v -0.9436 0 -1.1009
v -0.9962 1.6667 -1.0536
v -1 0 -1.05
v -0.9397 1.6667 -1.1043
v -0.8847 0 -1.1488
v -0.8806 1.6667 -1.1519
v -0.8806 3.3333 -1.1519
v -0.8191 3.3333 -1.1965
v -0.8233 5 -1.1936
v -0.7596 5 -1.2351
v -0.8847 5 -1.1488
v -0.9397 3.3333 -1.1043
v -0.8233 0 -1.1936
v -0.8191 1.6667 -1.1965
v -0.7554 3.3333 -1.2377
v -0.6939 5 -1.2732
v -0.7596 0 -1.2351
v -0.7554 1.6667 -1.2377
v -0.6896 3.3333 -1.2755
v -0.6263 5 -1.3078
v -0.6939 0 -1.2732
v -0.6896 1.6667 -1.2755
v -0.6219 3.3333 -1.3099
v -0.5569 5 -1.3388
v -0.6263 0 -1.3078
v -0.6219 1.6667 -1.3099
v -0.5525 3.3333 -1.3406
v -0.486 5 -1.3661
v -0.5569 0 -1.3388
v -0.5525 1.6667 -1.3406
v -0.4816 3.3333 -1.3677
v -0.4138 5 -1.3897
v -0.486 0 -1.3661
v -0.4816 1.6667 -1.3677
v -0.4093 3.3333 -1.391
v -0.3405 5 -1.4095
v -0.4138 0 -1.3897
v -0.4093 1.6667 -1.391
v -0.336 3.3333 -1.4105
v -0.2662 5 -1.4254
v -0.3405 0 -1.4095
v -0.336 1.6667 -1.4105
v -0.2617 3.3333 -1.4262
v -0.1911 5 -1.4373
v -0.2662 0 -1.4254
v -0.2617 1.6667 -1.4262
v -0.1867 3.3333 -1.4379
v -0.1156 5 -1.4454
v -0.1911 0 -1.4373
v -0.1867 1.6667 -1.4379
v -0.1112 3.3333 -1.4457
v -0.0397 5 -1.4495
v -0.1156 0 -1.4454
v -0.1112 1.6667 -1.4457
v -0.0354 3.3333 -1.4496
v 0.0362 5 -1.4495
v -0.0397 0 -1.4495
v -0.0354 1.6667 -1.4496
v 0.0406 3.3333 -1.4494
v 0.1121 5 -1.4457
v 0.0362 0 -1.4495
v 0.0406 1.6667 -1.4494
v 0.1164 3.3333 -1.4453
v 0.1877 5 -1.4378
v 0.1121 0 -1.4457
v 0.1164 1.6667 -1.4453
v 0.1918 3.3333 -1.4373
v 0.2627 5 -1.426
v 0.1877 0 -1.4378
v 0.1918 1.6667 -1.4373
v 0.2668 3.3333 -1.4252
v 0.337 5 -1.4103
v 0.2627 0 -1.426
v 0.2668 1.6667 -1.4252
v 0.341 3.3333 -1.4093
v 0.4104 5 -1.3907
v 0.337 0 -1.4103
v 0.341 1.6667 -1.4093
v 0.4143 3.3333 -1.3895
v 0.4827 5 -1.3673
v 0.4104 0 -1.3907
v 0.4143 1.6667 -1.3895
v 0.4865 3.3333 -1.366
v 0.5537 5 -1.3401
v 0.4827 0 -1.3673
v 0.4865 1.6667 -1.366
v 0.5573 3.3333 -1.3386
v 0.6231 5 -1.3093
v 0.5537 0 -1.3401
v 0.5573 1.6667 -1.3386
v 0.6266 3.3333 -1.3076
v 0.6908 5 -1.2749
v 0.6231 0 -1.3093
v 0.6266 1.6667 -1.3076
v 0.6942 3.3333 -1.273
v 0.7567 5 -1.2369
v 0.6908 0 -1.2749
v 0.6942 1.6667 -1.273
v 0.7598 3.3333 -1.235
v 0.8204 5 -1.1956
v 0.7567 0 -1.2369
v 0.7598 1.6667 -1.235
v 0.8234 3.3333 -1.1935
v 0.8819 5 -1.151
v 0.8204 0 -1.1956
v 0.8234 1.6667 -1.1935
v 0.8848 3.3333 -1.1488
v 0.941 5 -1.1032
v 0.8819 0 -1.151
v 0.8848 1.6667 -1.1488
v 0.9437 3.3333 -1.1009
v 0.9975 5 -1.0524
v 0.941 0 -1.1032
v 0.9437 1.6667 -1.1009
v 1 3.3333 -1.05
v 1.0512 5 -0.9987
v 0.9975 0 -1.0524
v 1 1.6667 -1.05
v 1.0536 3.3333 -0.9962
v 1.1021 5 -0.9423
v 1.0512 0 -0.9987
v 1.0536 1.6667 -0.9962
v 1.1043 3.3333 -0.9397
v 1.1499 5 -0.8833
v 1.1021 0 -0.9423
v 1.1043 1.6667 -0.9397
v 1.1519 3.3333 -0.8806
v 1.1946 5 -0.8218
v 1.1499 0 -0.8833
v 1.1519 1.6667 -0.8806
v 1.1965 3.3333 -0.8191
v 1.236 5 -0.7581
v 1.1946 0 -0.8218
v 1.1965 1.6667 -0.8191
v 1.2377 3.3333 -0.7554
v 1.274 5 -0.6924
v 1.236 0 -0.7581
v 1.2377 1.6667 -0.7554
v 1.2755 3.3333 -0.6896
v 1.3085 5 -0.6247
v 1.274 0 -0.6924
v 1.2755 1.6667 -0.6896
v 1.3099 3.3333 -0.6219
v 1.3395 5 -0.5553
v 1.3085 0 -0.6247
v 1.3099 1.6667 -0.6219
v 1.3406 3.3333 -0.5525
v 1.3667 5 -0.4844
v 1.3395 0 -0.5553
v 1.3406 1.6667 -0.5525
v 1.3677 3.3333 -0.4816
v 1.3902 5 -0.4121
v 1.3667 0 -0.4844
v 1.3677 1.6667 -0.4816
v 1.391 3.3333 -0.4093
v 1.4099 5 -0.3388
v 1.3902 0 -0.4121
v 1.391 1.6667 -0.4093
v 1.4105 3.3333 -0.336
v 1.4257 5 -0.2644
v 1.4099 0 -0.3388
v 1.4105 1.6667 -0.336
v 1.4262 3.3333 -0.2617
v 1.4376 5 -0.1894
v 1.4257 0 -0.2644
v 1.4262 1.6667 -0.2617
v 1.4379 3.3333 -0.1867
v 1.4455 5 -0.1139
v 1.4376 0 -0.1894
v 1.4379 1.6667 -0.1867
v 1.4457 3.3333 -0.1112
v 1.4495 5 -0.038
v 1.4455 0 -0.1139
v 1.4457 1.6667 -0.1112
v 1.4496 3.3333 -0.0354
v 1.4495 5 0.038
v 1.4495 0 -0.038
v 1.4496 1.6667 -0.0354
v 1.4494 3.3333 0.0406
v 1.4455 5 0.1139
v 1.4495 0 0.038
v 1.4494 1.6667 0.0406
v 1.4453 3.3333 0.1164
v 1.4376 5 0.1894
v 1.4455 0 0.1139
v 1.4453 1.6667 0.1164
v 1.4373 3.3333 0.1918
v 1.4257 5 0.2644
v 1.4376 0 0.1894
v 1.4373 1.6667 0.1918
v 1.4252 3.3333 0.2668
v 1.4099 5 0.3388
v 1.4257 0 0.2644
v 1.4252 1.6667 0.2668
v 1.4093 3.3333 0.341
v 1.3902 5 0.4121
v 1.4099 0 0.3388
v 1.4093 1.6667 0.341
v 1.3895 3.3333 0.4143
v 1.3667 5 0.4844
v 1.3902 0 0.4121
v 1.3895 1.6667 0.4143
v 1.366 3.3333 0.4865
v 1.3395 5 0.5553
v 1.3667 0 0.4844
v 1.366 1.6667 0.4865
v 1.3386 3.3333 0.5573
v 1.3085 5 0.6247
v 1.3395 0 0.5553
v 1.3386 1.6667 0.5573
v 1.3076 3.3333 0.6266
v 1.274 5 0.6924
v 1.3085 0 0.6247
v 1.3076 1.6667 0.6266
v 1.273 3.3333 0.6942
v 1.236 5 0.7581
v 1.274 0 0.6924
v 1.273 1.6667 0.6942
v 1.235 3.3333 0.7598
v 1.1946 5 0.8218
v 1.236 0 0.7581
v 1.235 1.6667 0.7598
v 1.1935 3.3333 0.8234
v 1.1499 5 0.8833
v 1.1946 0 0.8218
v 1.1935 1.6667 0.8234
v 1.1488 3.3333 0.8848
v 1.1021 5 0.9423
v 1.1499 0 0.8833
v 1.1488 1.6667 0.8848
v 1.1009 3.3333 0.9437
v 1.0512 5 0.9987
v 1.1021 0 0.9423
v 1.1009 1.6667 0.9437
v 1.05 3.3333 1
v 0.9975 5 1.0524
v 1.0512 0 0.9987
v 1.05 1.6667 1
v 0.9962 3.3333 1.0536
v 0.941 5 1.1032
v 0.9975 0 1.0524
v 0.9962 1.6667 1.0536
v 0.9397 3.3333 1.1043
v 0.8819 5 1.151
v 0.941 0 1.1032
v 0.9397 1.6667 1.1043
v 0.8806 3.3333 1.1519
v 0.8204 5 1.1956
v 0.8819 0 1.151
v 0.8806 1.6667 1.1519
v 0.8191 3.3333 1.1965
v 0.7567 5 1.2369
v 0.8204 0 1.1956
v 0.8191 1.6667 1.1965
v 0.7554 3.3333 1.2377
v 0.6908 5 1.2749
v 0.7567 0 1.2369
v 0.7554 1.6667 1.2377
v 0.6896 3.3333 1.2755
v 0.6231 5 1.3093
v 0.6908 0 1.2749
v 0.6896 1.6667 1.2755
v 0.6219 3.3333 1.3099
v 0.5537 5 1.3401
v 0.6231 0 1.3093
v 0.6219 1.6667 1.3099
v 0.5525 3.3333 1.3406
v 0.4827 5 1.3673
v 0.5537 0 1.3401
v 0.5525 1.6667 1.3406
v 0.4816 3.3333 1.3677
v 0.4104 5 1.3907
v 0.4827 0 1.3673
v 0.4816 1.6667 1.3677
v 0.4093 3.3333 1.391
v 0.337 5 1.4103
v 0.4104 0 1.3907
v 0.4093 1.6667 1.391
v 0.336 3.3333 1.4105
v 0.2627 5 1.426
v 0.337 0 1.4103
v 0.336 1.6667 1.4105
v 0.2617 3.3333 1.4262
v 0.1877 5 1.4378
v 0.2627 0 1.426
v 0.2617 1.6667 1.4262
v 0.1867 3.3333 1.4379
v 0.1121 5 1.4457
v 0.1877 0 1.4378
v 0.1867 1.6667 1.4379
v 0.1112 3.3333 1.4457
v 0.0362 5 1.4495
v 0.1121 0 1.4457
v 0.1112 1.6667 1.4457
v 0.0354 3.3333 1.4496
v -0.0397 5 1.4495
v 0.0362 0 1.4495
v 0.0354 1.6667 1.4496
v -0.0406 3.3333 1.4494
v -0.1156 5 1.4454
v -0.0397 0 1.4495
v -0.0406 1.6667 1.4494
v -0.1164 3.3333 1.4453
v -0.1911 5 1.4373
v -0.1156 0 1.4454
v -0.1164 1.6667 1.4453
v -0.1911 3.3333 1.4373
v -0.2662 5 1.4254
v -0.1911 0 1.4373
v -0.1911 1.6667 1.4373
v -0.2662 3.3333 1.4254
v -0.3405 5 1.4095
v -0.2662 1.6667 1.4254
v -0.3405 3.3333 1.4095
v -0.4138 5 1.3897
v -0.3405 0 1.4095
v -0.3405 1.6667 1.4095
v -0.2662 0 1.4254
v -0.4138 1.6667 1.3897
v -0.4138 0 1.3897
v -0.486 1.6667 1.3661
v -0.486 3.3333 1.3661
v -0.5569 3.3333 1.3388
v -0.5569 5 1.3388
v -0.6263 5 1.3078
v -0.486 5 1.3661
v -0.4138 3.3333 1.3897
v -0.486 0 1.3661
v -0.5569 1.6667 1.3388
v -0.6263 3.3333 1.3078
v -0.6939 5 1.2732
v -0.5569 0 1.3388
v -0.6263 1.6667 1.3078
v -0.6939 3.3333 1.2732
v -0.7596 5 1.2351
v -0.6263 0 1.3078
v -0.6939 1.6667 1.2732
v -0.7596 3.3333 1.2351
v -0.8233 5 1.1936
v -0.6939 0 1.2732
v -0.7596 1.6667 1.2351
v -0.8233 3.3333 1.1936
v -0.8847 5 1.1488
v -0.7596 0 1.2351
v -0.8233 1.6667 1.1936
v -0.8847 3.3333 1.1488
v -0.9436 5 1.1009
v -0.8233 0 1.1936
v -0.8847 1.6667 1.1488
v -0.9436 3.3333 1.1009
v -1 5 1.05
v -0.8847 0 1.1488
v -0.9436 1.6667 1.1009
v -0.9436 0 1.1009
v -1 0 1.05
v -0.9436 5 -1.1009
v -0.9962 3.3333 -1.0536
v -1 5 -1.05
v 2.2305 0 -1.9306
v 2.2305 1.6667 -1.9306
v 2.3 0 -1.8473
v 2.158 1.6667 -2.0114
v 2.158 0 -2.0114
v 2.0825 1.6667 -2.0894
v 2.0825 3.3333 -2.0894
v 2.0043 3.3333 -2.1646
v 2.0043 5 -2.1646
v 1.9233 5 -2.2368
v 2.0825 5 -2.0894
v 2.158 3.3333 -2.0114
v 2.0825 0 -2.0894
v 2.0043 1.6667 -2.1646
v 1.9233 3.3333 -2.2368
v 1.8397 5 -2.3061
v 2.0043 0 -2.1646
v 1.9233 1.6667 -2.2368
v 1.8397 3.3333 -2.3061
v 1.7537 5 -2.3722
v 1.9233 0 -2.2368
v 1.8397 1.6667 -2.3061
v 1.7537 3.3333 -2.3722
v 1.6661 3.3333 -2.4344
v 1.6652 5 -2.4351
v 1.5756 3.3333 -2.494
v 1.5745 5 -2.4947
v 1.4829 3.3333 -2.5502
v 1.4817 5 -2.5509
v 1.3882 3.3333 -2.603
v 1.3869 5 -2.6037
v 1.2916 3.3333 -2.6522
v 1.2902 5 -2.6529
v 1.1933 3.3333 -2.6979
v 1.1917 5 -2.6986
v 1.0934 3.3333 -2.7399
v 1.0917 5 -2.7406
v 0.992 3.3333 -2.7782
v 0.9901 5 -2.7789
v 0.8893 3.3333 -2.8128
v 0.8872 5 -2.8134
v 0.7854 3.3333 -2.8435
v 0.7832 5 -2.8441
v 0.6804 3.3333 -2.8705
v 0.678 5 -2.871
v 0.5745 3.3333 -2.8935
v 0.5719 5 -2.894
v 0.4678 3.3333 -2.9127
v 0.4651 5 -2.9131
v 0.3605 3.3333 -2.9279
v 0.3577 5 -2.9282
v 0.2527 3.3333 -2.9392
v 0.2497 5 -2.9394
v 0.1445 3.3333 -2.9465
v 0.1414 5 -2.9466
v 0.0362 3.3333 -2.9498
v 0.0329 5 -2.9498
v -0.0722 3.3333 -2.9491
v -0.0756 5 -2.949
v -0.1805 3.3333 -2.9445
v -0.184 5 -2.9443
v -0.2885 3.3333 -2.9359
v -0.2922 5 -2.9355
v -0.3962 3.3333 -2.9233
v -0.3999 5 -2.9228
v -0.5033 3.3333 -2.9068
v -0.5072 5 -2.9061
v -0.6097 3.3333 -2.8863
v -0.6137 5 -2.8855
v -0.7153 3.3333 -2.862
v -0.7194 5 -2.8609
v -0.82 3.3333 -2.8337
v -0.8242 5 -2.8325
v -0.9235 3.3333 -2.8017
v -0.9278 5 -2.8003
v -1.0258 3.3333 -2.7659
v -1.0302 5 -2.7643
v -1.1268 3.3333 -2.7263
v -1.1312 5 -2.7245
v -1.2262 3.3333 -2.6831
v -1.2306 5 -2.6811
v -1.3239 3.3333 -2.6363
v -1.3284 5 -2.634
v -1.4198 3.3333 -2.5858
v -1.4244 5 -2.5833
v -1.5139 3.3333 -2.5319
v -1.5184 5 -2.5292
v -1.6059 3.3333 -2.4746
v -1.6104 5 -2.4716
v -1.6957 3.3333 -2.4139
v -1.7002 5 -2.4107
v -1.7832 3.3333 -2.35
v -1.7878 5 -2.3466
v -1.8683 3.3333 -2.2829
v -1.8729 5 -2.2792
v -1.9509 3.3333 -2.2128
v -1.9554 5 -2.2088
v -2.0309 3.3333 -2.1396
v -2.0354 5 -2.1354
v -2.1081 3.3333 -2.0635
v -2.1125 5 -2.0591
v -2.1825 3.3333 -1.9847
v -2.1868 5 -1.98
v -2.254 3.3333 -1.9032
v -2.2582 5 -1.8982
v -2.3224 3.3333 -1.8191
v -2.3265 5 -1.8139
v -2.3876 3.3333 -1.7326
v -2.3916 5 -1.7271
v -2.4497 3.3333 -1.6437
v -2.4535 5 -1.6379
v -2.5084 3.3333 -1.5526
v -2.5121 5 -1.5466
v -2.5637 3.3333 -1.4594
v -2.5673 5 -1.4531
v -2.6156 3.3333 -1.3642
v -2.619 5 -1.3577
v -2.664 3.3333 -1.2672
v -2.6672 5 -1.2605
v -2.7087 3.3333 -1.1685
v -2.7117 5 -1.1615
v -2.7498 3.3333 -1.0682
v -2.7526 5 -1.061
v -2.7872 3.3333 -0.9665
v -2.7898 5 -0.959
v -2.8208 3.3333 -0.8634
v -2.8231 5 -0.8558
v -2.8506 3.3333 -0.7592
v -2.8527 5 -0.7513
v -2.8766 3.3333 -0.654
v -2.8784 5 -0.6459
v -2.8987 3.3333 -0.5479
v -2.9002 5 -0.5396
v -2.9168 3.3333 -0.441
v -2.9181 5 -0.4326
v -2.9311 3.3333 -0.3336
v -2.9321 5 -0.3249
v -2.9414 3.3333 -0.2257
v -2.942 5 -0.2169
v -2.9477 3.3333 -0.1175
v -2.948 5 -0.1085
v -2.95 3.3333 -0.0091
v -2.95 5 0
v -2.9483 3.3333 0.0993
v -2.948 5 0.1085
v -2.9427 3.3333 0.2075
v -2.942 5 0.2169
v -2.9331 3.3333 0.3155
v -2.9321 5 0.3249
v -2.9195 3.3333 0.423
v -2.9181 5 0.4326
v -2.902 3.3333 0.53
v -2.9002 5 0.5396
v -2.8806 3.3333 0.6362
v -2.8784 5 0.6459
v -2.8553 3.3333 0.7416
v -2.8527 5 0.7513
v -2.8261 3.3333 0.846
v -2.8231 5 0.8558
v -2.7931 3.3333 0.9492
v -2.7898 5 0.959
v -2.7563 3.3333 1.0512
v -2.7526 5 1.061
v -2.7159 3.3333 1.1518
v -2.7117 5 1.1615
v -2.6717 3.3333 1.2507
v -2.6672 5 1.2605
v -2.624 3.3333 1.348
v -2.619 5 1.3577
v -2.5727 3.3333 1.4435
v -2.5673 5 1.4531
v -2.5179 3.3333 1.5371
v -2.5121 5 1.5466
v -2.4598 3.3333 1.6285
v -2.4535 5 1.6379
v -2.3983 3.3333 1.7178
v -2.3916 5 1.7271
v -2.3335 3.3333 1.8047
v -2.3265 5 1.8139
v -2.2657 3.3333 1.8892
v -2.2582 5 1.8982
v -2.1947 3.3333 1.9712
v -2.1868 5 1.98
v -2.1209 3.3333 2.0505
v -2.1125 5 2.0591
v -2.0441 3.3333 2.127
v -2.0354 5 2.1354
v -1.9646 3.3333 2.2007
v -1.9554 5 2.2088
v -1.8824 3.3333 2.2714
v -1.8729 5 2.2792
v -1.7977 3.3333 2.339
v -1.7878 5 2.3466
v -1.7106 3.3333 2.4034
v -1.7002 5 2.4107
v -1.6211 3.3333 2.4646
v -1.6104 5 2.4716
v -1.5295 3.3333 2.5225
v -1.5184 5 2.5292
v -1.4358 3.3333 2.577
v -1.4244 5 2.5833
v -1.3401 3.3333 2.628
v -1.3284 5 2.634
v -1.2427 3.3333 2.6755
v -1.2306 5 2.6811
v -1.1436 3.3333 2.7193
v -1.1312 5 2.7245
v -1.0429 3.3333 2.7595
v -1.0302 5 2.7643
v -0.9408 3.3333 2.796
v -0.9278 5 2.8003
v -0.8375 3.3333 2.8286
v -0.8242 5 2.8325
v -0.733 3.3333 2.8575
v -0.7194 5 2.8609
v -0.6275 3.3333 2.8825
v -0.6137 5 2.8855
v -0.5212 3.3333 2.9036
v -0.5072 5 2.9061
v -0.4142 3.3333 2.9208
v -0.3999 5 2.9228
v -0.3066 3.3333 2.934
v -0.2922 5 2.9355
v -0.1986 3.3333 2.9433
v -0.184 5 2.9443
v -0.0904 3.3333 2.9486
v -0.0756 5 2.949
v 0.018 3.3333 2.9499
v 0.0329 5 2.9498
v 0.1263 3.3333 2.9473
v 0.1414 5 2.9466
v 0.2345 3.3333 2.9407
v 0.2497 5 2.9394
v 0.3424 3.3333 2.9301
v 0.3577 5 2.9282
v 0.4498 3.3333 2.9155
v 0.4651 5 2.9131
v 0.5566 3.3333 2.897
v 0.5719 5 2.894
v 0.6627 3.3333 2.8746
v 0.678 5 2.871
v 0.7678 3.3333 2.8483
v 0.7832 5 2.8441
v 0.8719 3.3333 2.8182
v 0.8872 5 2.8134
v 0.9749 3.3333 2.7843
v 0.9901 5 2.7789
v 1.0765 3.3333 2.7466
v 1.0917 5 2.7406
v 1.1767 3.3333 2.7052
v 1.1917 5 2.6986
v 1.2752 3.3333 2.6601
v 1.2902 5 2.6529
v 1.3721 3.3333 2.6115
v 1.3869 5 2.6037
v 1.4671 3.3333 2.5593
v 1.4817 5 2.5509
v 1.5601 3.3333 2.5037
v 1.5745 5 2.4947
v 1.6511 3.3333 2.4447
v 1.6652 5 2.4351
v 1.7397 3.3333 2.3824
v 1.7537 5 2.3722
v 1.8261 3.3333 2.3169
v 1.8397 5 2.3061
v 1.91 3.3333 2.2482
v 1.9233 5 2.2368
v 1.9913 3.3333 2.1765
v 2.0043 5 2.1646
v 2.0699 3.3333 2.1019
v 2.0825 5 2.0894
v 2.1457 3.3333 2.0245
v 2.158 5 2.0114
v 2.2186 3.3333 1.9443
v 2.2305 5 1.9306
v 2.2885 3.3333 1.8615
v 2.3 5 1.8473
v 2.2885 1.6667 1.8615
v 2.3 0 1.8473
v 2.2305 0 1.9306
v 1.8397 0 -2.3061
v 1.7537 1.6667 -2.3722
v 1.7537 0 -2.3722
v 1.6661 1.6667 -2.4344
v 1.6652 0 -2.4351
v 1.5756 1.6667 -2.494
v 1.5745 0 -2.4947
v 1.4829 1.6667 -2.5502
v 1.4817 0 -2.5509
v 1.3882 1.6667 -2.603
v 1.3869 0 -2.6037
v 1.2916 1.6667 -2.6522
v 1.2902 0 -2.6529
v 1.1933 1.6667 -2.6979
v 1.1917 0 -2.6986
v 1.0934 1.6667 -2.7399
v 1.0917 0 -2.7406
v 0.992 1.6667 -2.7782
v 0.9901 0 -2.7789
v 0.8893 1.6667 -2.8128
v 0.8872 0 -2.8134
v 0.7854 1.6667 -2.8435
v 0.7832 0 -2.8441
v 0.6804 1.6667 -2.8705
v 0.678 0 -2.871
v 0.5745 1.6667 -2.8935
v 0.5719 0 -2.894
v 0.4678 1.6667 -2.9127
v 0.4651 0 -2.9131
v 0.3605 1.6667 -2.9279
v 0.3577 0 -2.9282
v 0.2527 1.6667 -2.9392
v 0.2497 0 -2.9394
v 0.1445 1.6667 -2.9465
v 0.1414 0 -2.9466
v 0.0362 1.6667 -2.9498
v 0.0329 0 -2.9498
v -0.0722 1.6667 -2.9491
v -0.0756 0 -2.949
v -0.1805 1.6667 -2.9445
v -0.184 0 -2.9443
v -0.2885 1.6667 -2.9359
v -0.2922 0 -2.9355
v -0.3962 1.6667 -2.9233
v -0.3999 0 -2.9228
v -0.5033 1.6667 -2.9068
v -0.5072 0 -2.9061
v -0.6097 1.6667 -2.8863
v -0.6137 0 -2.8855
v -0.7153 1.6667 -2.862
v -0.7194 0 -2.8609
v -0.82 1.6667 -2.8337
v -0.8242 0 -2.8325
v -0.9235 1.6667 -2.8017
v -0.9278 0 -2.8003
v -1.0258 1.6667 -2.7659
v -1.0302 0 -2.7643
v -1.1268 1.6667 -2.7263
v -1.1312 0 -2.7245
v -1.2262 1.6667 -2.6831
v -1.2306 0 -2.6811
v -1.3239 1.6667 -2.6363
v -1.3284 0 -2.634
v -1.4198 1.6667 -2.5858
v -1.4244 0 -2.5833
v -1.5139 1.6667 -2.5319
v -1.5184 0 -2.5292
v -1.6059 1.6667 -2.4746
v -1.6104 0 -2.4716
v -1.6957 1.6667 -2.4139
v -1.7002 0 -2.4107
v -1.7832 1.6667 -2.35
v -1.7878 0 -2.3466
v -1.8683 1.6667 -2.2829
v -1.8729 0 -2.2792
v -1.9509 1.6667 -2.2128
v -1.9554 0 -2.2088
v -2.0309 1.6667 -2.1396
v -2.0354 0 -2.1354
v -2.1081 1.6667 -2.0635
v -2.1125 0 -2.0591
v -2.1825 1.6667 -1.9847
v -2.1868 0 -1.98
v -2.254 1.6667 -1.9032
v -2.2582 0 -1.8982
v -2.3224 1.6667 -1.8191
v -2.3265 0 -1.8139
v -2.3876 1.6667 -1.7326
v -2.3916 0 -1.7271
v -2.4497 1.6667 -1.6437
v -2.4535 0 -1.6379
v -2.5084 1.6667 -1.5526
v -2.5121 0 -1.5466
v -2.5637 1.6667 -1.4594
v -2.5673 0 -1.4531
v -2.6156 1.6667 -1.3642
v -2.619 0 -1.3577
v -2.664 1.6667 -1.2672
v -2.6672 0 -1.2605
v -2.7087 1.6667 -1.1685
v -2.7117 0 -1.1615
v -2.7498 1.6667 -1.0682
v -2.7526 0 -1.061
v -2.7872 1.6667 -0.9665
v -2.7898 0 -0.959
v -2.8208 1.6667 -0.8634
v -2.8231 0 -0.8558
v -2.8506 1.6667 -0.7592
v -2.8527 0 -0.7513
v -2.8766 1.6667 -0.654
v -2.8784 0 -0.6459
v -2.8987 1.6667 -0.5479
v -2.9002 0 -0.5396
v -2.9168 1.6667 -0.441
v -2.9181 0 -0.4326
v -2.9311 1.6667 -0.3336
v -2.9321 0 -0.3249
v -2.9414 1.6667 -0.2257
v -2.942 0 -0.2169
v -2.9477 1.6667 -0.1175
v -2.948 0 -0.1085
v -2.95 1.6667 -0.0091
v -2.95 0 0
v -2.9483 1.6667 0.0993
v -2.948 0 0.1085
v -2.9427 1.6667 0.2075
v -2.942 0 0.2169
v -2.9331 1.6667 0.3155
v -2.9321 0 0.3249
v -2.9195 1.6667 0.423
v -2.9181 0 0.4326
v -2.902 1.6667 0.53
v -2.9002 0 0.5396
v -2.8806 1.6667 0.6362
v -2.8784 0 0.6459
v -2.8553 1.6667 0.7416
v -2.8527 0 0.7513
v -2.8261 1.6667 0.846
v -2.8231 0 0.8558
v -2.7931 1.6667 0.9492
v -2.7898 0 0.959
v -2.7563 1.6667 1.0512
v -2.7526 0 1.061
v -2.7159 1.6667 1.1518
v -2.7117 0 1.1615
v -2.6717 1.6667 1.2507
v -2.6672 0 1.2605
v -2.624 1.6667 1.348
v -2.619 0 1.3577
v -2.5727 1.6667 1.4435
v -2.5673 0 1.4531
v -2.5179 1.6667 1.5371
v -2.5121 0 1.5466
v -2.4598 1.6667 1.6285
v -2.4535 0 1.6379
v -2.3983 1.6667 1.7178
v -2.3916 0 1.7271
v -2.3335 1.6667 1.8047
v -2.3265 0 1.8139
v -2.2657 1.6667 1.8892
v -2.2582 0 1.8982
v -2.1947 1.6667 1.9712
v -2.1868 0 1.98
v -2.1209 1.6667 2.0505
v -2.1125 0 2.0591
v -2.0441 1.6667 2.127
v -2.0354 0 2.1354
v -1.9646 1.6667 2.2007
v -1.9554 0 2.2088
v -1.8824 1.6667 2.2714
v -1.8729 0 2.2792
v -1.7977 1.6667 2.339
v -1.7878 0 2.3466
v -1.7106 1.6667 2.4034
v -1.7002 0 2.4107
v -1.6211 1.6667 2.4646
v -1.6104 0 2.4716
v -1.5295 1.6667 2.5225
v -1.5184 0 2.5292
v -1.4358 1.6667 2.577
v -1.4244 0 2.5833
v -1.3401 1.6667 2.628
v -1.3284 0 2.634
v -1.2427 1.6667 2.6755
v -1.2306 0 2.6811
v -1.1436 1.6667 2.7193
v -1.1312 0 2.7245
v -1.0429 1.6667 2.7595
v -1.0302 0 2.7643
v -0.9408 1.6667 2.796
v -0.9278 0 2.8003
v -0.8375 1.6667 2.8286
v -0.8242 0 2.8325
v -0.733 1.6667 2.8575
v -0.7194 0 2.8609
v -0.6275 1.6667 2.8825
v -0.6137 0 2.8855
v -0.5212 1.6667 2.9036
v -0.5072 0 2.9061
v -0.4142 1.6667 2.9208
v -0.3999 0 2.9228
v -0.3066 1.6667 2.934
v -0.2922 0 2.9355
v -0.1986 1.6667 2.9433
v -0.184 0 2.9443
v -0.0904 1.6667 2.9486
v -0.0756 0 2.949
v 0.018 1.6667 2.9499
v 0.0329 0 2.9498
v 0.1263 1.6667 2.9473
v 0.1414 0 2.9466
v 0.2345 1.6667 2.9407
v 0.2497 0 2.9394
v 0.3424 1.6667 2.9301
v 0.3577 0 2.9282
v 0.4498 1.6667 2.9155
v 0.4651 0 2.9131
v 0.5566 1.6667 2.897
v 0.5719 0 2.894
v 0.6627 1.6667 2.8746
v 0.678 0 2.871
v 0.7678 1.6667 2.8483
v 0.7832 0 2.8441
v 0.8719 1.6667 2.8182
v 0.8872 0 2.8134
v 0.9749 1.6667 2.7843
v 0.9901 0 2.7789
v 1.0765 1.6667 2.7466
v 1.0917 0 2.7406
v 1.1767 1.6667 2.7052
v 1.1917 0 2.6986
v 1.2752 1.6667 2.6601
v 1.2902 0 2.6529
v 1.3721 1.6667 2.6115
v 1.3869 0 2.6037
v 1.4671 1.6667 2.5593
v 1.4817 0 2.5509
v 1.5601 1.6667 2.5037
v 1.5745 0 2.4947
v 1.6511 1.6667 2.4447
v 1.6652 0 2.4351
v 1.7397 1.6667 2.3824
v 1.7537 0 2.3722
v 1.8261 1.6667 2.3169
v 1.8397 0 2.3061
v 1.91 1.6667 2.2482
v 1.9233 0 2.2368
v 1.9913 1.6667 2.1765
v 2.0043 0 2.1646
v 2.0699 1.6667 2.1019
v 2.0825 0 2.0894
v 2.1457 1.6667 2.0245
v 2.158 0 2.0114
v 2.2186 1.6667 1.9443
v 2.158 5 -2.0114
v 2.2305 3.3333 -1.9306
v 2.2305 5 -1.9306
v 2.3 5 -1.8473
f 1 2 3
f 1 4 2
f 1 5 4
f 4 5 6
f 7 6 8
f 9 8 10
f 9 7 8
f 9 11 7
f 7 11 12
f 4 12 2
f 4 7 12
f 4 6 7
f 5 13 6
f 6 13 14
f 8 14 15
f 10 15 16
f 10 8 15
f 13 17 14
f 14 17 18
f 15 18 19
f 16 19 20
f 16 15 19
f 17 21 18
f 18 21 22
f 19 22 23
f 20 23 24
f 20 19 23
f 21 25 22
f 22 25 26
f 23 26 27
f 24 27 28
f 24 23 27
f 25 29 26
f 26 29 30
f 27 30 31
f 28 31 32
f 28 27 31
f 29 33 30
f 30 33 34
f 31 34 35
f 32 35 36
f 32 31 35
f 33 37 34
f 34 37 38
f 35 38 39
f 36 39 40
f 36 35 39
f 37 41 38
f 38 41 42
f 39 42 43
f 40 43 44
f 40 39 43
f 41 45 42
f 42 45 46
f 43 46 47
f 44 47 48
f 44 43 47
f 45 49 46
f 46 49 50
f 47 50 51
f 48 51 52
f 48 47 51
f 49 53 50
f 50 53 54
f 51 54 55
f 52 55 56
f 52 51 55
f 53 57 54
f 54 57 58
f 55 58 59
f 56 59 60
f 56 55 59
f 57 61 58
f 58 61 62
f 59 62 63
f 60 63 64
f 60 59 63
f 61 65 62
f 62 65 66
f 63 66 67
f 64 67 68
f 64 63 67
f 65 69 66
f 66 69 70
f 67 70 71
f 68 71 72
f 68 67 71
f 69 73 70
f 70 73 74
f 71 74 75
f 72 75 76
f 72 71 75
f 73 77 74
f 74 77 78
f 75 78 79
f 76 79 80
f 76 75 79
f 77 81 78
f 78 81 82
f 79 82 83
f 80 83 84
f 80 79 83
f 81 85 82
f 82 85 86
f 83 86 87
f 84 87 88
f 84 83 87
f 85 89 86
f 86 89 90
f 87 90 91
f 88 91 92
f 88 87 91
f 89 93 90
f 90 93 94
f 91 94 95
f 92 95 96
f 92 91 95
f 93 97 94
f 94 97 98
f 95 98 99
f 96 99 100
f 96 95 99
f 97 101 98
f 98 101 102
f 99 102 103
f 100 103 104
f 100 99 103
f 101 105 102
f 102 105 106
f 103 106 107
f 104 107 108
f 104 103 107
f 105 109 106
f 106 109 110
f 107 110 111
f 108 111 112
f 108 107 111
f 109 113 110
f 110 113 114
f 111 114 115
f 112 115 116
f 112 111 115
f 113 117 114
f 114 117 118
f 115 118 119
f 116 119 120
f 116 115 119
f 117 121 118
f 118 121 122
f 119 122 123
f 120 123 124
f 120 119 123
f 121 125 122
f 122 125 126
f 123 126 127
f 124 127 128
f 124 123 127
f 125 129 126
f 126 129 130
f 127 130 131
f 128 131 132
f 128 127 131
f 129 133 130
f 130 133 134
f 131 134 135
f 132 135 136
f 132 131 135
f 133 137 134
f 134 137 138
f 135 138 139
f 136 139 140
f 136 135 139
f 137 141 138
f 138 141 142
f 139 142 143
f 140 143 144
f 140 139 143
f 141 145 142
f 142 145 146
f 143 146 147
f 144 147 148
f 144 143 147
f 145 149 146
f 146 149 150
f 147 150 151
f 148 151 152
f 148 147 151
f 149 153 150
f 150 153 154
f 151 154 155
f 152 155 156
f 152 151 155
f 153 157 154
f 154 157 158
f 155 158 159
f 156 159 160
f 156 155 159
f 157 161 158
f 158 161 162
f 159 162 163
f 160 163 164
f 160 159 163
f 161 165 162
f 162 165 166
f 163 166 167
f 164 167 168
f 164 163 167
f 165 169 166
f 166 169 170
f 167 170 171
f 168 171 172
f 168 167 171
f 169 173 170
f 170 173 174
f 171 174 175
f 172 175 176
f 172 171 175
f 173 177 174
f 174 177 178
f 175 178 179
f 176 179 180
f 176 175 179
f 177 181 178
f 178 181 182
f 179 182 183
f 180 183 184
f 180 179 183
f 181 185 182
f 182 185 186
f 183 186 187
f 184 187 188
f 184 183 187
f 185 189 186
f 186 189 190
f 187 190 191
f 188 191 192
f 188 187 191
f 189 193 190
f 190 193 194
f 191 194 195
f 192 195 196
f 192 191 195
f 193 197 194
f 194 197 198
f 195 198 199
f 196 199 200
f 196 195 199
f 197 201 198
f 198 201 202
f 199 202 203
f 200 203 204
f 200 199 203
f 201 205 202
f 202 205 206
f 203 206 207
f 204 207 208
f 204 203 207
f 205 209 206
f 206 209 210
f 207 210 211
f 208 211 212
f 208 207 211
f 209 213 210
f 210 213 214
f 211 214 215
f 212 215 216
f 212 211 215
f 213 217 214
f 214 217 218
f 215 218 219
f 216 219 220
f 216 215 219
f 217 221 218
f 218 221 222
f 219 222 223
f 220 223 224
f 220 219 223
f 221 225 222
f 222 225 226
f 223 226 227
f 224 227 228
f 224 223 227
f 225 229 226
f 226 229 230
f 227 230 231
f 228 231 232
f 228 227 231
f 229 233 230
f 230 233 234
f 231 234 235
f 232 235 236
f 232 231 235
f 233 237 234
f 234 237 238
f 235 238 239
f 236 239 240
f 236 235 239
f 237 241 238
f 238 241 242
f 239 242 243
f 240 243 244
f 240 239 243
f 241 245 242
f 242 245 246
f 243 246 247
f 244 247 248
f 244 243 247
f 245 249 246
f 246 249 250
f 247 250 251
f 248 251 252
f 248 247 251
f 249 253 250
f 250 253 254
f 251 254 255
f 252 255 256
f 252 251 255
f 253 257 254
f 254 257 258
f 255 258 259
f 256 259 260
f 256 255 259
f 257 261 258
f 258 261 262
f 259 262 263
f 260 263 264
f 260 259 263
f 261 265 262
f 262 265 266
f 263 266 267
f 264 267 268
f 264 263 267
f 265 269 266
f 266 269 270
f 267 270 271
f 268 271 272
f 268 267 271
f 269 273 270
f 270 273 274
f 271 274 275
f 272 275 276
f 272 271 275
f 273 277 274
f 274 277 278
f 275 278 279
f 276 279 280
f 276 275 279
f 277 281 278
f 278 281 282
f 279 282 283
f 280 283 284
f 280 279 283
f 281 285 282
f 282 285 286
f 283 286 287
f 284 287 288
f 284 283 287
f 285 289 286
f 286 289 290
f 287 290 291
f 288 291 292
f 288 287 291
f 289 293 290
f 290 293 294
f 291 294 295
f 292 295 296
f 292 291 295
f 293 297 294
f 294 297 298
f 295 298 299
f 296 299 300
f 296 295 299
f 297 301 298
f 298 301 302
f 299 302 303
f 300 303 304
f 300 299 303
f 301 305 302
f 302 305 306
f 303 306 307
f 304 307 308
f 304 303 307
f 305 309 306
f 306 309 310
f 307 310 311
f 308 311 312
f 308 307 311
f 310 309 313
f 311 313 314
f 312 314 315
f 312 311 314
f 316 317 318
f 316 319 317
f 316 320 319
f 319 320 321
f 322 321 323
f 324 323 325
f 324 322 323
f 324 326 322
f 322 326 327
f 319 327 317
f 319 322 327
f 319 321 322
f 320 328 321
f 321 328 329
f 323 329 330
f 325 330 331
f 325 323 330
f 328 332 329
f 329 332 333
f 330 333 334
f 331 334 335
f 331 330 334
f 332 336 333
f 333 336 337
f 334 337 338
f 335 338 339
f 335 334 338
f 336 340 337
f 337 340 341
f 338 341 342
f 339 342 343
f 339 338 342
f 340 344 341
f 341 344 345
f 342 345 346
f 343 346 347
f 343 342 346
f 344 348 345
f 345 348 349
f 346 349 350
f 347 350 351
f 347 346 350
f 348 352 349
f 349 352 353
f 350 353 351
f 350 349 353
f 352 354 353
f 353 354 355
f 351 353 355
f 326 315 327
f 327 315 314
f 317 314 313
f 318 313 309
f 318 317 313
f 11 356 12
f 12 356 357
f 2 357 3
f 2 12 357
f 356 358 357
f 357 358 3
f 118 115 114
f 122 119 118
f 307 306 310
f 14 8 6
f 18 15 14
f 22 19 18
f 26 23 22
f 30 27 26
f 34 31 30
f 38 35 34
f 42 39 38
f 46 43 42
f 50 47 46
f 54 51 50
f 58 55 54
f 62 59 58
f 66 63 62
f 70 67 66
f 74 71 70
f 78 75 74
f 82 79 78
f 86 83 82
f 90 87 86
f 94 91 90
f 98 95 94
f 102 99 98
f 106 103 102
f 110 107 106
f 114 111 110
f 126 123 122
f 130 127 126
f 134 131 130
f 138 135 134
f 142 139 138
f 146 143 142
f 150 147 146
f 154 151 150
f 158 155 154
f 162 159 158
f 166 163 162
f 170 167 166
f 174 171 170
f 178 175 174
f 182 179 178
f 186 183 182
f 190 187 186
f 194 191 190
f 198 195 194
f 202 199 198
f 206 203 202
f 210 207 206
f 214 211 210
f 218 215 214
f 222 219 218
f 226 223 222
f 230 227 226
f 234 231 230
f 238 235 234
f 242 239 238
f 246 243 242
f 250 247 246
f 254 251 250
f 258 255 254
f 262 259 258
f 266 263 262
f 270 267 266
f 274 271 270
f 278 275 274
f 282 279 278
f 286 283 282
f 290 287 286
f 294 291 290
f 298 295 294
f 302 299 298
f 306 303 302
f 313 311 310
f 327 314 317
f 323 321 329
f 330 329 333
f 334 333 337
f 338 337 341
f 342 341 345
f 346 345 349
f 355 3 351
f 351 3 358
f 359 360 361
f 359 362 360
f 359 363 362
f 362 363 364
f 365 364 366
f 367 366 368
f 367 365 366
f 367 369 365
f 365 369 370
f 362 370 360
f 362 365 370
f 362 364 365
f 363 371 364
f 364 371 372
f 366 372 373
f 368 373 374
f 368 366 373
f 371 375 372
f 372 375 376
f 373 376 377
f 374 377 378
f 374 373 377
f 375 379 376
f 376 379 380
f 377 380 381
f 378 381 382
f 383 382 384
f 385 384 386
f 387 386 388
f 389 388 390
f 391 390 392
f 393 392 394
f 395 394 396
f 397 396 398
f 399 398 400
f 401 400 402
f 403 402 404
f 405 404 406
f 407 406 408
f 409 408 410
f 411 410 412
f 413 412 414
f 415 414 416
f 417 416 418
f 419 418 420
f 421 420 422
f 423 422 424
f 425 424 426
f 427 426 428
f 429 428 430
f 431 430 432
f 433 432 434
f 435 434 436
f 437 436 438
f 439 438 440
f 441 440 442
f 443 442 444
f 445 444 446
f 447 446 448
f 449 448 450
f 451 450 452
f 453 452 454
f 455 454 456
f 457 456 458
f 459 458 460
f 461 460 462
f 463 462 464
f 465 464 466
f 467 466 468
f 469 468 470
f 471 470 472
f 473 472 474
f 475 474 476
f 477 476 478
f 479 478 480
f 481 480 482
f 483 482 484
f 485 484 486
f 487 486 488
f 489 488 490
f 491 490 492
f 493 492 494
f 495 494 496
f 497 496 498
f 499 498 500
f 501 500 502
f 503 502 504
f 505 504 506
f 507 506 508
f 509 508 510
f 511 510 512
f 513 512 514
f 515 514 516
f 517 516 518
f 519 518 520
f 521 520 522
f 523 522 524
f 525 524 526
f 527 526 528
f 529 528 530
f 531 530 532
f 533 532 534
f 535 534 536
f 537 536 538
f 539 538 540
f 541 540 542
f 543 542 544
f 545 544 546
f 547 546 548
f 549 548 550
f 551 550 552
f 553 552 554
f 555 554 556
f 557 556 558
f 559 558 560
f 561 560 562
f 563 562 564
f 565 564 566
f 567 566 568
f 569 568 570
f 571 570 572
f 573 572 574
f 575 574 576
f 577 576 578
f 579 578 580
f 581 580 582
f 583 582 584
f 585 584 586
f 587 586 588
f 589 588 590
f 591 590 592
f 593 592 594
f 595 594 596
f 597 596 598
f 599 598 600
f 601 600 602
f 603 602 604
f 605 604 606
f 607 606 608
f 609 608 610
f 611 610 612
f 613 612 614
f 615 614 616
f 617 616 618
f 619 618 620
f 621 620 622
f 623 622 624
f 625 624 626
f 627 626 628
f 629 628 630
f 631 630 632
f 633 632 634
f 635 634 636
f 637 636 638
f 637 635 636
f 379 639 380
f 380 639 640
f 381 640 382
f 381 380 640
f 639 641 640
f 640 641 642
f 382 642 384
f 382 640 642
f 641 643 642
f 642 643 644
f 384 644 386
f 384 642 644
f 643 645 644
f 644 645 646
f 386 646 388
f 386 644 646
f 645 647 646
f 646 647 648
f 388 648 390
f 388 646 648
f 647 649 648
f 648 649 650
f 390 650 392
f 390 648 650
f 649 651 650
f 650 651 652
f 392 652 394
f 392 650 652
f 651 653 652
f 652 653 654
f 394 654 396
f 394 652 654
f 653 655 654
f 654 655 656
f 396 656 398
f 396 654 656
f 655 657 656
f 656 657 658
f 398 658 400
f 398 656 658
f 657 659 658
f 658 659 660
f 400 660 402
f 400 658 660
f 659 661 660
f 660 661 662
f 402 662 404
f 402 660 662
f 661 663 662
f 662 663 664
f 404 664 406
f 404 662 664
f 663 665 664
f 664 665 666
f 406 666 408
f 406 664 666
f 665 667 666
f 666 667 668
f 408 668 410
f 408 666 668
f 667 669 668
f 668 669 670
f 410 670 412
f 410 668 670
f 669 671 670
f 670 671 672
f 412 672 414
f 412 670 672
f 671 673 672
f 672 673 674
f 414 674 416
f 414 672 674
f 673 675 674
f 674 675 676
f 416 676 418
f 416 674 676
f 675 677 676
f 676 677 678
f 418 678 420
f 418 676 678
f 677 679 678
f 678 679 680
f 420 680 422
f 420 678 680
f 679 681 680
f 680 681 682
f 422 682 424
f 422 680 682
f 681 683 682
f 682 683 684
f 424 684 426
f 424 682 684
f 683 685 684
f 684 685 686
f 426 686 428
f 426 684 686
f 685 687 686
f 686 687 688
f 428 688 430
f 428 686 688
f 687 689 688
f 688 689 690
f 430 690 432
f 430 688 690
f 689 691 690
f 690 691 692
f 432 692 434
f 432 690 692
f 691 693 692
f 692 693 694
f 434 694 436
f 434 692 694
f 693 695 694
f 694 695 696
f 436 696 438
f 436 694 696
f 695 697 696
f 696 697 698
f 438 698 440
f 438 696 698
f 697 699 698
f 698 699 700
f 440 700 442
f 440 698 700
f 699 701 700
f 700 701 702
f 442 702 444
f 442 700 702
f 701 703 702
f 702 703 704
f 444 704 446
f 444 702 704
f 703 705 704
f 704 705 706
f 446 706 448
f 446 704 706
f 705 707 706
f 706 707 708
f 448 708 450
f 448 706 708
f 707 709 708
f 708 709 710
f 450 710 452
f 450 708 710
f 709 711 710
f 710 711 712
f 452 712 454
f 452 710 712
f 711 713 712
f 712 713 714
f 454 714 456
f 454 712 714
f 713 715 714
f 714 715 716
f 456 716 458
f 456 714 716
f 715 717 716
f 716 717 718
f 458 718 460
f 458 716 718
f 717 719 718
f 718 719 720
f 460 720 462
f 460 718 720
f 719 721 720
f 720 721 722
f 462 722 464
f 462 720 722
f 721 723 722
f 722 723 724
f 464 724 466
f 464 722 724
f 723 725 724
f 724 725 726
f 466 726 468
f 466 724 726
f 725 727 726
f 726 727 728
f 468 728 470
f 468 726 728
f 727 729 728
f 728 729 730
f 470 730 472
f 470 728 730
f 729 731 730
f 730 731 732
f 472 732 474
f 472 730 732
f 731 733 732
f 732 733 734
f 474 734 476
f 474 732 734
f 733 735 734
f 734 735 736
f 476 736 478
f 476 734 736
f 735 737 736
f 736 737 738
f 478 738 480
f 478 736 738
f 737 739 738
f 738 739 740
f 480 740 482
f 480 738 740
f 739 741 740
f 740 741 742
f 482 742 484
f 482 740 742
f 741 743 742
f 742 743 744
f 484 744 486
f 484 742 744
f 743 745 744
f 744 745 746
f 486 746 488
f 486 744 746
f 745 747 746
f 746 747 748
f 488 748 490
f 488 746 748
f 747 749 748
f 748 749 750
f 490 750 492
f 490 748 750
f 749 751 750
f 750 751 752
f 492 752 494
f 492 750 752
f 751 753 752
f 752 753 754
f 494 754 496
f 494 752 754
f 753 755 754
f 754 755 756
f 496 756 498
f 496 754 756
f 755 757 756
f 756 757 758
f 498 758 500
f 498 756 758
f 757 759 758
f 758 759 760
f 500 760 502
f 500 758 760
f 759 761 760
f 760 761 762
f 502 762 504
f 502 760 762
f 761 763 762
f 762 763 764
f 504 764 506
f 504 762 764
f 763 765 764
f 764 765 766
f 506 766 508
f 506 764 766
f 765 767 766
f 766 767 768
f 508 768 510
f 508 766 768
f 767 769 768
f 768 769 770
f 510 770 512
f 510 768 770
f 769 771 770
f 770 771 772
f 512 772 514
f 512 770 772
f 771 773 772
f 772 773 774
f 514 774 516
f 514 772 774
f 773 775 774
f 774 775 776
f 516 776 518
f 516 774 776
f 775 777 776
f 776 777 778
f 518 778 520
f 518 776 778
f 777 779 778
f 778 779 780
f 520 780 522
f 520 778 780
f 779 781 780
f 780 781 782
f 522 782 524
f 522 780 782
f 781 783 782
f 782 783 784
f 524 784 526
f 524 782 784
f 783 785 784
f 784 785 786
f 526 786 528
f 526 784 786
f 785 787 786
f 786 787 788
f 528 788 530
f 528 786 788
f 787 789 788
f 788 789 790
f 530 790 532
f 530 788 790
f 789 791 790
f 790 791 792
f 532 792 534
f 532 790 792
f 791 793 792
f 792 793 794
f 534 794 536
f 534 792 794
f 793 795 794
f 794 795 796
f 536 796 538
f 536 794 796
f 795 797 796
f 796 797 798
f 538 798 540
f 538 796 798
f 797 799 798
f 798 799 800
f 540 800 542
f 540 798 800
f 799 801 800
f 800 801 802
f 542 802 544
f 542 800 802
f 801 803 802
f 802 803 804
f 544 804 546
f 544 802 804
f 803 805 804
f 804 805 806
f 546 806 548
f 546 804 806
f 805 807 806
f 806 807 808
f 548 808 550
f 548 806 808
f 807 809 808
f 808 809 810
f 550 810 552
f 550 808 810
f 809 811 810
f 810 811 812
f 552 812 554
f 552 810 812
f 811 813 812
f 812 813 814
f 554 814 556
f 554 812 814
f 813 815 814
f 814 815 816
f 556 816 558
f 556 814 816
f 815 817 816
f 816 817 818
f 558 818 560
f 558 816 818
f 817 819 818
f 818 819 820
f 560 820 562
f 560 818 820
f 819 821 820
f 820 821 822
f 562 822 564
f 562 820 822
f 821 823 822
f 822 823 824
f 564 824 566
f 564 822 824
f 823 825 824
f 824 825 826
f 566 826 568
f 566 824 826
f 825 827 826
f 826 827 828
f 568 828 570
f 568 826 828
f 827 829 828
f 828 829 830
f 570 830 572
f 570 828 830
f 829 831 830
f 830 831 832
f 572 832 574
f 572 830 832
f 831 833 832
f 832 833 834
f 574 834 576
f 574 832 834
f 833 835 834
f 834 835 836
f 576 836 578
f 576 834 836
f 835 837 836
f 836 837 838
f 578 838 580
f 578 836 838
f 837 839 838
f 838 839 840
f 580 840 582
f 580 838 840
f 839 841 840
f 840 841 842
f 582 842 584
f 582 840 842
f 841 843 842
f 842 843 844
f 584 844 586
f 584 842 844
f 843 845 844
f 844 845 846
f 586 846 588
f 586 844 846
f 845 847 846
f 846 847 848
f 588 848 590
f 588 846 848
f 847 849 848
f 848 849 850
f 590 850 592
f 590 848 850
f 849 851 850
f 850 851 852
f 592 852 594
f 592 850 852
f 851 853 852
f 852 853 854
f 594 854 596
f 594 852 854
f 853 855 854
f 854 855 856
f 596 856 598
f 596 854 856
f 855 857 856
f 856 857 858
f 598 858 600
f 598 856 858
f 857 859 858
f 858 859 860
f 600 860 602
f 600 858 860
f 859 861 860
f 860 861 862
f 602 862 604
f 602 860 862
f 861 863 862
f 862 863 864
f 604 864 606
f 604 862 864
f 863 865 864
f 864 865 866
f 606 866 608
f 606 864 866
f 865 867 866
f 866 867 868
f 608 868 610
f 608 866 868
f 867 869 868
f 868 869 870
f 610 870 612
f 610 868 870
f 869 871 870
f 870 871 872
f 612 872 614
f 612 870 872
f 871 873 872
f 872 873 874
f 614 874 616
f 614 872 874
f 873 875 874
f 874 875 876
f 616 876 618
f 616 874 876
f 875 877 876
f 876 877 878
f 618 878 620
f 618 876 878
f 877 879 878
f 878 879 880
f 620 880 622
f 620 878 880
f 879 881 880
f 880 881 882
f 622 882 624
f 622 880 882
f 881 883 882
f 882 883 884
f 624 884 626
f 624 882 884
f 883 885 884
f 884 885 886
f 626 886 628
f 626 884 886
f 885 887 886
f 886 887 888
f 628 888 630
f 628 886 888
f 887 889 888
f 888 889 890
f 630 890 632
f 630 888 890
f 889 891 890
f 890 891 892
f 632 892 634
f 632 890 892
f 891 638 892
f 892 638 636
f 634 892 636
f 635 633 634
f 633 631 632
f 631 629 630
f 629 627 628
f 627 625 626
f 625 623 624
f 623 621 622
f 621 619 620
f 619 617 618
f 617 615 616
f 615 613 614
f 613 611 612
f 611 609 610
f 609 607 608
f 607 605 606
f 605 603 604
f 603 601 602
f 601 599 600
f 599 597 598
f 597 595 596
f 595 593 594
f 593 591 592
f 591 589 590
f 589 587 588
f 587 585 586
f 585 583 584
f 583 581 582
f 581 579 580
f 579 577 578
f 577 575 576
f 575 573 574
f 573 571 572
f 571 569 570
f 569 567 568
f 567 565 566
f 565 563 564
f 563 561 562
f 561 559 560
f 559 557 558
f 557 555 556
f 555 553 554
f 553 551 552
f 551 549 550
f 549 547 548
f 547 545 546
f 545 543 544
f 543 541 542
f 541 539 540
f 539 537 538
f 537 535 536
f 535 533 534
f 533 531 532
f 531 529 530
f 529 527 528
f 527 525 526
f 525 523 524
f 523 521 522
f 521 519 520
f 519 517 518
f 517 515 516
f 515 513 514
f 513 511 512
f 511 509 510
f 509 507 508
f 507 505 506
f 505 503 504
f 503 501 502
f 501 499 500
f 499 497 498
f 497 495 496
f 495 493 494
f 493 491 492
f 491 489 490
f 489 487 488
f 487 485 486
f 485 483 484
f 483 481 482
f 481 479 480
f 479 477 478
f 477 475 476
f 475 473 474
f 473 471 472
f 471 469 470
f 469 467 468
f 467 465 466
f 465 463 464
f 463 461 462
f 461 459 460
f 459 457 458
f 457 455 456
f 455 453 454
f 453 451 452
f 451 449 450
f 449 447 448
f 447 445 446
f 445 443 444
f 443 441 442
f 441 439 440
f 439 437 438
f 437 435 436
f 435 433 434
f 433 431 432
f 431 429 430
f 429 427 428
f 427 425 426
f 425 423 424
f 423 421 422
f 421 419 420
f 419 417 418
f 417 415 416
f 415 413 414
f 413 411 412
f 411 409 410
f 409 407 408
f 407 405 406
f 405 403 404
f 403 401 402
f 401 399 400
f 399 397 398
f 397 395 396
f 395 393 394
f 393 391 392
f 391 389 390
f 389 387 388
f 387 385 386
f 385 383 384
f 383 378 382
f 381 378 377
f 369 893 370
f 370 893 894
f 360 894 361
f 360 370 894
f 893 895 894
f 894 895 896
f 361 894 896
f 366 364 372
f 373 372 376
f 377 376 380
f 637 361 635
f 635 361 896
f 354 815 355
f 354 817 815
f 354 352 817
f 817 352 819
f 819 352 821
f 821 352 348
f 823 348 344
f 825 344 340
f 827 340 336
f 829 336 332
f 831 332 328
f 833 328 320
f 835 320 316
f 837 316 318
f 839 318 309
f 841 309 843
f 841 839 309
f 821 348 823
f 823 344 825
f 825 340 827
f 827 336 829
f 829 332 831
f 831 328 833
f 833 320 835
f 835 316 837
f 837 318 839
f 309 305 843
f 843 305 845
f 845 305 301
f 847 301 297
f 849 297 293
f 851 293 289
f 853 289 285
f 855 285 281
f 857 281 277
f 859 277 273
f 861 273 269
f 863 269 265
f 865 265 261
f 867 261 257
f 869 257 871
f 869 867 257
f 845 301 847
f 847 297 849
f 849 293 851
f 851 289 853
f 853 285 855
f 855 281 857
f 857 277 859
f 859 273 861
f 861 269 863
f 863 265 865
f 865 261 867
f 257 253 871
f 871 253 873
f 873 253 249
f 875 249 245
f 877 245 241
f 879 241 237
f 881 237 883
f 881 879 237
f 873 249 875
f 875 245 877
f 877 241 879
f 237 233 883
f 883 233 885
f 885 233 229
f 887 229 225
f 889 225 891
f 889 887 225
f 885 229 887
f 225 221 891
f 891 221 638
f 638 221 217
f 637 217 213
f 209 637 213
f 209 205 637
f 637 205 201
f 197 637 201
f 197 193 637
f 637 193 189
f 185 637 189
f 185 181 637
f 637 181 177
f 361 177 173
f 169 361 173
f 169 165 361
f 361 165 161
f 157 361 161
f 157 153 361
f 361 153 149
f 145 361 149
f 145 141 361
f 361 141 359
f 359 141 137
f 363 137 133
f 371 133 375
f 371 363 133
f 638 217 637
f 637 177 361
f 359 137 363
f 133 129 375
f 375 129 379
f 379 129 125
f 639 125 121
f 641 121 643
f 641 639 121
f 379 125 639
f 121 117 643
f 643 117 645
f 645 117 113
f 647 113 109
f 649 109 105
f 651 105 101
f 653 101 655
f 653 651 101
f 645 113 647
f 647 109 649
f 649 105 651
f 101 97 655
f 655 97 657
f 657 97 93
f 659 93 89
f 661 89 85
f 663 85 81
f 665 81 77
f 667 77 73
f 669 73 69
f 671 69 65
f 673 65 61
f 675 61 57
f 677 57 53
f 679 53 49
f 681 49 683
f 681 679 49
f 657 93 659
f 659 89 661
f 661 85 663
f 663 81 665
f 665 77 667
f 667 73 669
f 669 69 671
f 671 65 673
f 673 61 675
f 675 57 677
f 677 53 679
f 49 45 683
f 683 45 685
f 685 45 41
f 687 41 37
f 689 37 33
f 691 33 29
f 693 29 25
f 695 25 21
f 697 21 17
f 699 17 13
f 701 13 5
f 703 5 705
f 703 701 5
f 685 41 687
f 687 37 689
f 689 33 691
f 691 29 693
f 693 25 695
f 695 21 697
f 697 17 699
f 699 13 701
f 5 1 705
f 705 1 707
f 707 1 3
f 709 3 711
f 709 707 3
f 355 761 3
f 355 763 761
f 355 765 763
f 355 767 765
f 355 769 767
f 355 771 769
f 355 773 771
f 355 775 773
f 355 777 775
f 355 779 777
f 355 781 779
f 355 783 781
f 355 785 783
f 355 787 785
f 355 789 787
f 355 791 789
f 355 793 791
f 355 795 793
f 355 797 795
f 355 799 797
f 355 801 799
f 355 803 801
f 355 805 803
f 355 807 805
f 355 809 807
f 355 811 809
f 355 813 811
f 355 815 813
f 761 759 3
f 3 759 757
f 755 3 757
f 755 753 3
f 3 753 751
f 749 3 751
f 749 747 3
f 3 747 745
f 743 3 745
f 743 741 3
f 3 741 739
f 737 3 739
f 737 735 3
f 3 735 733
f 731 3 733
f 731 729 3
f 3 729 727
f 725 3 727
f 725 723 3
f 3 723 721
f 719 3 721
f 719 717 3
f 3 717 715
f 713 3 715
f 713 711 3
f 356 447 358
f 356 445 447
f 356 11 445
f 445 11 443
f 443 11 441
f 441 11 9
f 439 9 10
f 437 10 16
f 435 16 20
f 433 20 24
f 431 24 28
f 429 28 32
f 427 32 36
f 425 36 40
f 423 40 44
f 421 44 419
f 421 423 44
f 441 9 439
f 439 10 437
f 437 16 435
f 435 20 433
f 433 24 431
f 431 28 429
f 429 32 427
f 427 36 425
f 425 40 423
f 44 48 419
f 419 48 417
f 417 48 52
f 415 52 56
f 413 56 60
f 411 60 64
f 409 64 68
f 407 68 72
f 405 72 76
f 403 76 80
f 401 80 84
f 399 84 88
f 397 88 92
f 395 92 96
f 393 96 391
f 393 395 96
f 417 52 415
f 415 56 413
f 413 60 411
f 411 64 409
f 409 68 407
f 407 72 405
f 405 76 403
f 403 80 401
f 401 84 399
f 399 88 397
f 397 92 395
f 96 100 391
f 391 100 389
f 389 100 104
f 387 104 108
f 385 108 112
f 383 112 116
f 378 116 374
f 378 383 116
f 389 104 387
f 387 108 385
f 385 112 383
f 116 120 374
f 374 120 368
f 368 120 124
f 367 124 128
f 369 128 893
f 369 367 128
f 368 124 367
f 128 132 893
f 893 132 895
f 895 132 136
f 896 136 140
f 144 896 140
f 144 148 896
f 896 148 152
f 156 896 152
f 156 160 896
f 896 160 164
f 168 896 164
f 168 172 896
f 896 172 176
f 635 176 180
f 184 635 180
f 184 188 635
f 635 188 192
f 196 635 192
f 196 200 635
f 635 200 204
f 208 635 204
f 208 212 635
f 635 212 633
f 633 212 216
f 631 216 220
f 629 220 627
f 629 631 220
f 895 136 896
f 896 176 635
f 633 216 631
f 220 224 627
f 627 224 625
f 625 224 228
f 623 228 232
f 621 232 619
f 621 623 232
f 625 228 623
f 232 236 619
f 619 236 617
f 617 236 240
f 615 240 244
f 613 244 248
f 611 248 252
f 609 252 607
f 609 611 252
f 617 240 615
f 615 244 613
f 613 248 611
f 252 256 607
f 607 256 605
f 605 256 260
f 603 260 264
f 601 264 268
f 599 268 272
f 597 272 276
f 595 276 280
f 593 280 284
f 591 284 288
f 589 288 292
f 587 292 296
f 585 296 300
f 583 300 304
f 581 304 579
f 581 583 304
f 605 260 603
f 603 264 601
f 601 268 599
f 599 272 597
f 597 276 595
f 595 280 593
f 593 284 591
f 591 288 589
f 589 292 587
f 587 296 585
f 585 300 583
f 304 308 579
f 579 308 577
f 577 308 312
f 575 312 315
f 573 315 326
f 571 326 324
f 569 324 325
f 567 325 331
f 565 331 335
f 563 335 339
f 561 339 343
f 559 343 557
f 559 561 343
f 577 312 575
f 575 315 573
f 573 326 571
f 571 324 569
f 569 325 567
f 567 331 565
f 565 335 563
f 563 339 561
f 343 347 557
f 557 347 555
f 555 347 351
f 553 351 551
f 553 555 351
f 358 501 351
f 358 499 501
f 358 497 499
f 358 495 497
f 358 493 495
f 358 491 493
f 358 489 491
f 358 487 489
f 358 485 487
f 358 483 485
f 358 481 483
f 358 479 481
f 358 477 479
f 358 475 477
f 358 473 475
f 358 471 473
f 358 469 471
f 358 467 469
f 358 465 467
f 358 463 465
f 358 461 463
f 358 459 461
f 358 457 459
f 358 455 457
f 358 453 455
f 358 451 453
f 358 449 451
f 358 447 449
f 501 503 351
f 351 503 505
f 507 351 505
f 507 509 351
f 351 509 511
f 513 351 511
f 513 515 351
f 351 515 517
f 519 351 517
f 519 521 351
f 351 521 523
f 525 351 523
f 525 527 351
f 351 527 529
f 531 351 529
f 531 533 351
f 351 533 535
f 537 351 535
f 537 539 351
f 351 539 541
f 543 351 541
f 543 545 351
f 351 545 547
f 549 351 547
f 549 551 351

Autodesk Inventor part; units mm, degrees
ref_plane "YZ Plane" through (0, 0, 0) normal (1, 0, 0) x (0, 1, 0)
ref_plane "XZ Plane" through (0, 0, 0) normal (0, 1, 0) x (-1, 0, 0)
ref_plane "XY Plane" through (0, 0, 0) normal (0, 0, 1) x (1, 0, 0)
sketch "Sketch1" plane through (0, 0, 0) normal (0, 1, 0) x (-1, 0, 0)
  arc A0 (-2.1, -2.0718) -> (-2.1, 2.0718) centre (0, 0) ccw
  arc A1 (1, 1.05) -> (1, -1.05) centre (0, 0) ccw
  line L0 (1, 0) -> (1, 1.05)
  line L1 (1, 0) -> (1, -1.05)
  arc A2 (-2.2177, -1.9454) -> (-2.2177, 1.9454) centre (0, 0) ccw
  line L2 (-2.3, -1.8473) -> (-2.3, 1.8473)
  arc A3 (-2.3, -1.8473) -> (-2.3, 1.8473) centre (0, 0) ccw
  dimension "d0" = 5.9
  dimension "d1" = 2.9
  dimension "d2" = 1
  dimension "d7" = 2.3
extrude "Extrusion1" add sketch "Sketch1" along normal blind 5
properties part number "shaft-adapter"
